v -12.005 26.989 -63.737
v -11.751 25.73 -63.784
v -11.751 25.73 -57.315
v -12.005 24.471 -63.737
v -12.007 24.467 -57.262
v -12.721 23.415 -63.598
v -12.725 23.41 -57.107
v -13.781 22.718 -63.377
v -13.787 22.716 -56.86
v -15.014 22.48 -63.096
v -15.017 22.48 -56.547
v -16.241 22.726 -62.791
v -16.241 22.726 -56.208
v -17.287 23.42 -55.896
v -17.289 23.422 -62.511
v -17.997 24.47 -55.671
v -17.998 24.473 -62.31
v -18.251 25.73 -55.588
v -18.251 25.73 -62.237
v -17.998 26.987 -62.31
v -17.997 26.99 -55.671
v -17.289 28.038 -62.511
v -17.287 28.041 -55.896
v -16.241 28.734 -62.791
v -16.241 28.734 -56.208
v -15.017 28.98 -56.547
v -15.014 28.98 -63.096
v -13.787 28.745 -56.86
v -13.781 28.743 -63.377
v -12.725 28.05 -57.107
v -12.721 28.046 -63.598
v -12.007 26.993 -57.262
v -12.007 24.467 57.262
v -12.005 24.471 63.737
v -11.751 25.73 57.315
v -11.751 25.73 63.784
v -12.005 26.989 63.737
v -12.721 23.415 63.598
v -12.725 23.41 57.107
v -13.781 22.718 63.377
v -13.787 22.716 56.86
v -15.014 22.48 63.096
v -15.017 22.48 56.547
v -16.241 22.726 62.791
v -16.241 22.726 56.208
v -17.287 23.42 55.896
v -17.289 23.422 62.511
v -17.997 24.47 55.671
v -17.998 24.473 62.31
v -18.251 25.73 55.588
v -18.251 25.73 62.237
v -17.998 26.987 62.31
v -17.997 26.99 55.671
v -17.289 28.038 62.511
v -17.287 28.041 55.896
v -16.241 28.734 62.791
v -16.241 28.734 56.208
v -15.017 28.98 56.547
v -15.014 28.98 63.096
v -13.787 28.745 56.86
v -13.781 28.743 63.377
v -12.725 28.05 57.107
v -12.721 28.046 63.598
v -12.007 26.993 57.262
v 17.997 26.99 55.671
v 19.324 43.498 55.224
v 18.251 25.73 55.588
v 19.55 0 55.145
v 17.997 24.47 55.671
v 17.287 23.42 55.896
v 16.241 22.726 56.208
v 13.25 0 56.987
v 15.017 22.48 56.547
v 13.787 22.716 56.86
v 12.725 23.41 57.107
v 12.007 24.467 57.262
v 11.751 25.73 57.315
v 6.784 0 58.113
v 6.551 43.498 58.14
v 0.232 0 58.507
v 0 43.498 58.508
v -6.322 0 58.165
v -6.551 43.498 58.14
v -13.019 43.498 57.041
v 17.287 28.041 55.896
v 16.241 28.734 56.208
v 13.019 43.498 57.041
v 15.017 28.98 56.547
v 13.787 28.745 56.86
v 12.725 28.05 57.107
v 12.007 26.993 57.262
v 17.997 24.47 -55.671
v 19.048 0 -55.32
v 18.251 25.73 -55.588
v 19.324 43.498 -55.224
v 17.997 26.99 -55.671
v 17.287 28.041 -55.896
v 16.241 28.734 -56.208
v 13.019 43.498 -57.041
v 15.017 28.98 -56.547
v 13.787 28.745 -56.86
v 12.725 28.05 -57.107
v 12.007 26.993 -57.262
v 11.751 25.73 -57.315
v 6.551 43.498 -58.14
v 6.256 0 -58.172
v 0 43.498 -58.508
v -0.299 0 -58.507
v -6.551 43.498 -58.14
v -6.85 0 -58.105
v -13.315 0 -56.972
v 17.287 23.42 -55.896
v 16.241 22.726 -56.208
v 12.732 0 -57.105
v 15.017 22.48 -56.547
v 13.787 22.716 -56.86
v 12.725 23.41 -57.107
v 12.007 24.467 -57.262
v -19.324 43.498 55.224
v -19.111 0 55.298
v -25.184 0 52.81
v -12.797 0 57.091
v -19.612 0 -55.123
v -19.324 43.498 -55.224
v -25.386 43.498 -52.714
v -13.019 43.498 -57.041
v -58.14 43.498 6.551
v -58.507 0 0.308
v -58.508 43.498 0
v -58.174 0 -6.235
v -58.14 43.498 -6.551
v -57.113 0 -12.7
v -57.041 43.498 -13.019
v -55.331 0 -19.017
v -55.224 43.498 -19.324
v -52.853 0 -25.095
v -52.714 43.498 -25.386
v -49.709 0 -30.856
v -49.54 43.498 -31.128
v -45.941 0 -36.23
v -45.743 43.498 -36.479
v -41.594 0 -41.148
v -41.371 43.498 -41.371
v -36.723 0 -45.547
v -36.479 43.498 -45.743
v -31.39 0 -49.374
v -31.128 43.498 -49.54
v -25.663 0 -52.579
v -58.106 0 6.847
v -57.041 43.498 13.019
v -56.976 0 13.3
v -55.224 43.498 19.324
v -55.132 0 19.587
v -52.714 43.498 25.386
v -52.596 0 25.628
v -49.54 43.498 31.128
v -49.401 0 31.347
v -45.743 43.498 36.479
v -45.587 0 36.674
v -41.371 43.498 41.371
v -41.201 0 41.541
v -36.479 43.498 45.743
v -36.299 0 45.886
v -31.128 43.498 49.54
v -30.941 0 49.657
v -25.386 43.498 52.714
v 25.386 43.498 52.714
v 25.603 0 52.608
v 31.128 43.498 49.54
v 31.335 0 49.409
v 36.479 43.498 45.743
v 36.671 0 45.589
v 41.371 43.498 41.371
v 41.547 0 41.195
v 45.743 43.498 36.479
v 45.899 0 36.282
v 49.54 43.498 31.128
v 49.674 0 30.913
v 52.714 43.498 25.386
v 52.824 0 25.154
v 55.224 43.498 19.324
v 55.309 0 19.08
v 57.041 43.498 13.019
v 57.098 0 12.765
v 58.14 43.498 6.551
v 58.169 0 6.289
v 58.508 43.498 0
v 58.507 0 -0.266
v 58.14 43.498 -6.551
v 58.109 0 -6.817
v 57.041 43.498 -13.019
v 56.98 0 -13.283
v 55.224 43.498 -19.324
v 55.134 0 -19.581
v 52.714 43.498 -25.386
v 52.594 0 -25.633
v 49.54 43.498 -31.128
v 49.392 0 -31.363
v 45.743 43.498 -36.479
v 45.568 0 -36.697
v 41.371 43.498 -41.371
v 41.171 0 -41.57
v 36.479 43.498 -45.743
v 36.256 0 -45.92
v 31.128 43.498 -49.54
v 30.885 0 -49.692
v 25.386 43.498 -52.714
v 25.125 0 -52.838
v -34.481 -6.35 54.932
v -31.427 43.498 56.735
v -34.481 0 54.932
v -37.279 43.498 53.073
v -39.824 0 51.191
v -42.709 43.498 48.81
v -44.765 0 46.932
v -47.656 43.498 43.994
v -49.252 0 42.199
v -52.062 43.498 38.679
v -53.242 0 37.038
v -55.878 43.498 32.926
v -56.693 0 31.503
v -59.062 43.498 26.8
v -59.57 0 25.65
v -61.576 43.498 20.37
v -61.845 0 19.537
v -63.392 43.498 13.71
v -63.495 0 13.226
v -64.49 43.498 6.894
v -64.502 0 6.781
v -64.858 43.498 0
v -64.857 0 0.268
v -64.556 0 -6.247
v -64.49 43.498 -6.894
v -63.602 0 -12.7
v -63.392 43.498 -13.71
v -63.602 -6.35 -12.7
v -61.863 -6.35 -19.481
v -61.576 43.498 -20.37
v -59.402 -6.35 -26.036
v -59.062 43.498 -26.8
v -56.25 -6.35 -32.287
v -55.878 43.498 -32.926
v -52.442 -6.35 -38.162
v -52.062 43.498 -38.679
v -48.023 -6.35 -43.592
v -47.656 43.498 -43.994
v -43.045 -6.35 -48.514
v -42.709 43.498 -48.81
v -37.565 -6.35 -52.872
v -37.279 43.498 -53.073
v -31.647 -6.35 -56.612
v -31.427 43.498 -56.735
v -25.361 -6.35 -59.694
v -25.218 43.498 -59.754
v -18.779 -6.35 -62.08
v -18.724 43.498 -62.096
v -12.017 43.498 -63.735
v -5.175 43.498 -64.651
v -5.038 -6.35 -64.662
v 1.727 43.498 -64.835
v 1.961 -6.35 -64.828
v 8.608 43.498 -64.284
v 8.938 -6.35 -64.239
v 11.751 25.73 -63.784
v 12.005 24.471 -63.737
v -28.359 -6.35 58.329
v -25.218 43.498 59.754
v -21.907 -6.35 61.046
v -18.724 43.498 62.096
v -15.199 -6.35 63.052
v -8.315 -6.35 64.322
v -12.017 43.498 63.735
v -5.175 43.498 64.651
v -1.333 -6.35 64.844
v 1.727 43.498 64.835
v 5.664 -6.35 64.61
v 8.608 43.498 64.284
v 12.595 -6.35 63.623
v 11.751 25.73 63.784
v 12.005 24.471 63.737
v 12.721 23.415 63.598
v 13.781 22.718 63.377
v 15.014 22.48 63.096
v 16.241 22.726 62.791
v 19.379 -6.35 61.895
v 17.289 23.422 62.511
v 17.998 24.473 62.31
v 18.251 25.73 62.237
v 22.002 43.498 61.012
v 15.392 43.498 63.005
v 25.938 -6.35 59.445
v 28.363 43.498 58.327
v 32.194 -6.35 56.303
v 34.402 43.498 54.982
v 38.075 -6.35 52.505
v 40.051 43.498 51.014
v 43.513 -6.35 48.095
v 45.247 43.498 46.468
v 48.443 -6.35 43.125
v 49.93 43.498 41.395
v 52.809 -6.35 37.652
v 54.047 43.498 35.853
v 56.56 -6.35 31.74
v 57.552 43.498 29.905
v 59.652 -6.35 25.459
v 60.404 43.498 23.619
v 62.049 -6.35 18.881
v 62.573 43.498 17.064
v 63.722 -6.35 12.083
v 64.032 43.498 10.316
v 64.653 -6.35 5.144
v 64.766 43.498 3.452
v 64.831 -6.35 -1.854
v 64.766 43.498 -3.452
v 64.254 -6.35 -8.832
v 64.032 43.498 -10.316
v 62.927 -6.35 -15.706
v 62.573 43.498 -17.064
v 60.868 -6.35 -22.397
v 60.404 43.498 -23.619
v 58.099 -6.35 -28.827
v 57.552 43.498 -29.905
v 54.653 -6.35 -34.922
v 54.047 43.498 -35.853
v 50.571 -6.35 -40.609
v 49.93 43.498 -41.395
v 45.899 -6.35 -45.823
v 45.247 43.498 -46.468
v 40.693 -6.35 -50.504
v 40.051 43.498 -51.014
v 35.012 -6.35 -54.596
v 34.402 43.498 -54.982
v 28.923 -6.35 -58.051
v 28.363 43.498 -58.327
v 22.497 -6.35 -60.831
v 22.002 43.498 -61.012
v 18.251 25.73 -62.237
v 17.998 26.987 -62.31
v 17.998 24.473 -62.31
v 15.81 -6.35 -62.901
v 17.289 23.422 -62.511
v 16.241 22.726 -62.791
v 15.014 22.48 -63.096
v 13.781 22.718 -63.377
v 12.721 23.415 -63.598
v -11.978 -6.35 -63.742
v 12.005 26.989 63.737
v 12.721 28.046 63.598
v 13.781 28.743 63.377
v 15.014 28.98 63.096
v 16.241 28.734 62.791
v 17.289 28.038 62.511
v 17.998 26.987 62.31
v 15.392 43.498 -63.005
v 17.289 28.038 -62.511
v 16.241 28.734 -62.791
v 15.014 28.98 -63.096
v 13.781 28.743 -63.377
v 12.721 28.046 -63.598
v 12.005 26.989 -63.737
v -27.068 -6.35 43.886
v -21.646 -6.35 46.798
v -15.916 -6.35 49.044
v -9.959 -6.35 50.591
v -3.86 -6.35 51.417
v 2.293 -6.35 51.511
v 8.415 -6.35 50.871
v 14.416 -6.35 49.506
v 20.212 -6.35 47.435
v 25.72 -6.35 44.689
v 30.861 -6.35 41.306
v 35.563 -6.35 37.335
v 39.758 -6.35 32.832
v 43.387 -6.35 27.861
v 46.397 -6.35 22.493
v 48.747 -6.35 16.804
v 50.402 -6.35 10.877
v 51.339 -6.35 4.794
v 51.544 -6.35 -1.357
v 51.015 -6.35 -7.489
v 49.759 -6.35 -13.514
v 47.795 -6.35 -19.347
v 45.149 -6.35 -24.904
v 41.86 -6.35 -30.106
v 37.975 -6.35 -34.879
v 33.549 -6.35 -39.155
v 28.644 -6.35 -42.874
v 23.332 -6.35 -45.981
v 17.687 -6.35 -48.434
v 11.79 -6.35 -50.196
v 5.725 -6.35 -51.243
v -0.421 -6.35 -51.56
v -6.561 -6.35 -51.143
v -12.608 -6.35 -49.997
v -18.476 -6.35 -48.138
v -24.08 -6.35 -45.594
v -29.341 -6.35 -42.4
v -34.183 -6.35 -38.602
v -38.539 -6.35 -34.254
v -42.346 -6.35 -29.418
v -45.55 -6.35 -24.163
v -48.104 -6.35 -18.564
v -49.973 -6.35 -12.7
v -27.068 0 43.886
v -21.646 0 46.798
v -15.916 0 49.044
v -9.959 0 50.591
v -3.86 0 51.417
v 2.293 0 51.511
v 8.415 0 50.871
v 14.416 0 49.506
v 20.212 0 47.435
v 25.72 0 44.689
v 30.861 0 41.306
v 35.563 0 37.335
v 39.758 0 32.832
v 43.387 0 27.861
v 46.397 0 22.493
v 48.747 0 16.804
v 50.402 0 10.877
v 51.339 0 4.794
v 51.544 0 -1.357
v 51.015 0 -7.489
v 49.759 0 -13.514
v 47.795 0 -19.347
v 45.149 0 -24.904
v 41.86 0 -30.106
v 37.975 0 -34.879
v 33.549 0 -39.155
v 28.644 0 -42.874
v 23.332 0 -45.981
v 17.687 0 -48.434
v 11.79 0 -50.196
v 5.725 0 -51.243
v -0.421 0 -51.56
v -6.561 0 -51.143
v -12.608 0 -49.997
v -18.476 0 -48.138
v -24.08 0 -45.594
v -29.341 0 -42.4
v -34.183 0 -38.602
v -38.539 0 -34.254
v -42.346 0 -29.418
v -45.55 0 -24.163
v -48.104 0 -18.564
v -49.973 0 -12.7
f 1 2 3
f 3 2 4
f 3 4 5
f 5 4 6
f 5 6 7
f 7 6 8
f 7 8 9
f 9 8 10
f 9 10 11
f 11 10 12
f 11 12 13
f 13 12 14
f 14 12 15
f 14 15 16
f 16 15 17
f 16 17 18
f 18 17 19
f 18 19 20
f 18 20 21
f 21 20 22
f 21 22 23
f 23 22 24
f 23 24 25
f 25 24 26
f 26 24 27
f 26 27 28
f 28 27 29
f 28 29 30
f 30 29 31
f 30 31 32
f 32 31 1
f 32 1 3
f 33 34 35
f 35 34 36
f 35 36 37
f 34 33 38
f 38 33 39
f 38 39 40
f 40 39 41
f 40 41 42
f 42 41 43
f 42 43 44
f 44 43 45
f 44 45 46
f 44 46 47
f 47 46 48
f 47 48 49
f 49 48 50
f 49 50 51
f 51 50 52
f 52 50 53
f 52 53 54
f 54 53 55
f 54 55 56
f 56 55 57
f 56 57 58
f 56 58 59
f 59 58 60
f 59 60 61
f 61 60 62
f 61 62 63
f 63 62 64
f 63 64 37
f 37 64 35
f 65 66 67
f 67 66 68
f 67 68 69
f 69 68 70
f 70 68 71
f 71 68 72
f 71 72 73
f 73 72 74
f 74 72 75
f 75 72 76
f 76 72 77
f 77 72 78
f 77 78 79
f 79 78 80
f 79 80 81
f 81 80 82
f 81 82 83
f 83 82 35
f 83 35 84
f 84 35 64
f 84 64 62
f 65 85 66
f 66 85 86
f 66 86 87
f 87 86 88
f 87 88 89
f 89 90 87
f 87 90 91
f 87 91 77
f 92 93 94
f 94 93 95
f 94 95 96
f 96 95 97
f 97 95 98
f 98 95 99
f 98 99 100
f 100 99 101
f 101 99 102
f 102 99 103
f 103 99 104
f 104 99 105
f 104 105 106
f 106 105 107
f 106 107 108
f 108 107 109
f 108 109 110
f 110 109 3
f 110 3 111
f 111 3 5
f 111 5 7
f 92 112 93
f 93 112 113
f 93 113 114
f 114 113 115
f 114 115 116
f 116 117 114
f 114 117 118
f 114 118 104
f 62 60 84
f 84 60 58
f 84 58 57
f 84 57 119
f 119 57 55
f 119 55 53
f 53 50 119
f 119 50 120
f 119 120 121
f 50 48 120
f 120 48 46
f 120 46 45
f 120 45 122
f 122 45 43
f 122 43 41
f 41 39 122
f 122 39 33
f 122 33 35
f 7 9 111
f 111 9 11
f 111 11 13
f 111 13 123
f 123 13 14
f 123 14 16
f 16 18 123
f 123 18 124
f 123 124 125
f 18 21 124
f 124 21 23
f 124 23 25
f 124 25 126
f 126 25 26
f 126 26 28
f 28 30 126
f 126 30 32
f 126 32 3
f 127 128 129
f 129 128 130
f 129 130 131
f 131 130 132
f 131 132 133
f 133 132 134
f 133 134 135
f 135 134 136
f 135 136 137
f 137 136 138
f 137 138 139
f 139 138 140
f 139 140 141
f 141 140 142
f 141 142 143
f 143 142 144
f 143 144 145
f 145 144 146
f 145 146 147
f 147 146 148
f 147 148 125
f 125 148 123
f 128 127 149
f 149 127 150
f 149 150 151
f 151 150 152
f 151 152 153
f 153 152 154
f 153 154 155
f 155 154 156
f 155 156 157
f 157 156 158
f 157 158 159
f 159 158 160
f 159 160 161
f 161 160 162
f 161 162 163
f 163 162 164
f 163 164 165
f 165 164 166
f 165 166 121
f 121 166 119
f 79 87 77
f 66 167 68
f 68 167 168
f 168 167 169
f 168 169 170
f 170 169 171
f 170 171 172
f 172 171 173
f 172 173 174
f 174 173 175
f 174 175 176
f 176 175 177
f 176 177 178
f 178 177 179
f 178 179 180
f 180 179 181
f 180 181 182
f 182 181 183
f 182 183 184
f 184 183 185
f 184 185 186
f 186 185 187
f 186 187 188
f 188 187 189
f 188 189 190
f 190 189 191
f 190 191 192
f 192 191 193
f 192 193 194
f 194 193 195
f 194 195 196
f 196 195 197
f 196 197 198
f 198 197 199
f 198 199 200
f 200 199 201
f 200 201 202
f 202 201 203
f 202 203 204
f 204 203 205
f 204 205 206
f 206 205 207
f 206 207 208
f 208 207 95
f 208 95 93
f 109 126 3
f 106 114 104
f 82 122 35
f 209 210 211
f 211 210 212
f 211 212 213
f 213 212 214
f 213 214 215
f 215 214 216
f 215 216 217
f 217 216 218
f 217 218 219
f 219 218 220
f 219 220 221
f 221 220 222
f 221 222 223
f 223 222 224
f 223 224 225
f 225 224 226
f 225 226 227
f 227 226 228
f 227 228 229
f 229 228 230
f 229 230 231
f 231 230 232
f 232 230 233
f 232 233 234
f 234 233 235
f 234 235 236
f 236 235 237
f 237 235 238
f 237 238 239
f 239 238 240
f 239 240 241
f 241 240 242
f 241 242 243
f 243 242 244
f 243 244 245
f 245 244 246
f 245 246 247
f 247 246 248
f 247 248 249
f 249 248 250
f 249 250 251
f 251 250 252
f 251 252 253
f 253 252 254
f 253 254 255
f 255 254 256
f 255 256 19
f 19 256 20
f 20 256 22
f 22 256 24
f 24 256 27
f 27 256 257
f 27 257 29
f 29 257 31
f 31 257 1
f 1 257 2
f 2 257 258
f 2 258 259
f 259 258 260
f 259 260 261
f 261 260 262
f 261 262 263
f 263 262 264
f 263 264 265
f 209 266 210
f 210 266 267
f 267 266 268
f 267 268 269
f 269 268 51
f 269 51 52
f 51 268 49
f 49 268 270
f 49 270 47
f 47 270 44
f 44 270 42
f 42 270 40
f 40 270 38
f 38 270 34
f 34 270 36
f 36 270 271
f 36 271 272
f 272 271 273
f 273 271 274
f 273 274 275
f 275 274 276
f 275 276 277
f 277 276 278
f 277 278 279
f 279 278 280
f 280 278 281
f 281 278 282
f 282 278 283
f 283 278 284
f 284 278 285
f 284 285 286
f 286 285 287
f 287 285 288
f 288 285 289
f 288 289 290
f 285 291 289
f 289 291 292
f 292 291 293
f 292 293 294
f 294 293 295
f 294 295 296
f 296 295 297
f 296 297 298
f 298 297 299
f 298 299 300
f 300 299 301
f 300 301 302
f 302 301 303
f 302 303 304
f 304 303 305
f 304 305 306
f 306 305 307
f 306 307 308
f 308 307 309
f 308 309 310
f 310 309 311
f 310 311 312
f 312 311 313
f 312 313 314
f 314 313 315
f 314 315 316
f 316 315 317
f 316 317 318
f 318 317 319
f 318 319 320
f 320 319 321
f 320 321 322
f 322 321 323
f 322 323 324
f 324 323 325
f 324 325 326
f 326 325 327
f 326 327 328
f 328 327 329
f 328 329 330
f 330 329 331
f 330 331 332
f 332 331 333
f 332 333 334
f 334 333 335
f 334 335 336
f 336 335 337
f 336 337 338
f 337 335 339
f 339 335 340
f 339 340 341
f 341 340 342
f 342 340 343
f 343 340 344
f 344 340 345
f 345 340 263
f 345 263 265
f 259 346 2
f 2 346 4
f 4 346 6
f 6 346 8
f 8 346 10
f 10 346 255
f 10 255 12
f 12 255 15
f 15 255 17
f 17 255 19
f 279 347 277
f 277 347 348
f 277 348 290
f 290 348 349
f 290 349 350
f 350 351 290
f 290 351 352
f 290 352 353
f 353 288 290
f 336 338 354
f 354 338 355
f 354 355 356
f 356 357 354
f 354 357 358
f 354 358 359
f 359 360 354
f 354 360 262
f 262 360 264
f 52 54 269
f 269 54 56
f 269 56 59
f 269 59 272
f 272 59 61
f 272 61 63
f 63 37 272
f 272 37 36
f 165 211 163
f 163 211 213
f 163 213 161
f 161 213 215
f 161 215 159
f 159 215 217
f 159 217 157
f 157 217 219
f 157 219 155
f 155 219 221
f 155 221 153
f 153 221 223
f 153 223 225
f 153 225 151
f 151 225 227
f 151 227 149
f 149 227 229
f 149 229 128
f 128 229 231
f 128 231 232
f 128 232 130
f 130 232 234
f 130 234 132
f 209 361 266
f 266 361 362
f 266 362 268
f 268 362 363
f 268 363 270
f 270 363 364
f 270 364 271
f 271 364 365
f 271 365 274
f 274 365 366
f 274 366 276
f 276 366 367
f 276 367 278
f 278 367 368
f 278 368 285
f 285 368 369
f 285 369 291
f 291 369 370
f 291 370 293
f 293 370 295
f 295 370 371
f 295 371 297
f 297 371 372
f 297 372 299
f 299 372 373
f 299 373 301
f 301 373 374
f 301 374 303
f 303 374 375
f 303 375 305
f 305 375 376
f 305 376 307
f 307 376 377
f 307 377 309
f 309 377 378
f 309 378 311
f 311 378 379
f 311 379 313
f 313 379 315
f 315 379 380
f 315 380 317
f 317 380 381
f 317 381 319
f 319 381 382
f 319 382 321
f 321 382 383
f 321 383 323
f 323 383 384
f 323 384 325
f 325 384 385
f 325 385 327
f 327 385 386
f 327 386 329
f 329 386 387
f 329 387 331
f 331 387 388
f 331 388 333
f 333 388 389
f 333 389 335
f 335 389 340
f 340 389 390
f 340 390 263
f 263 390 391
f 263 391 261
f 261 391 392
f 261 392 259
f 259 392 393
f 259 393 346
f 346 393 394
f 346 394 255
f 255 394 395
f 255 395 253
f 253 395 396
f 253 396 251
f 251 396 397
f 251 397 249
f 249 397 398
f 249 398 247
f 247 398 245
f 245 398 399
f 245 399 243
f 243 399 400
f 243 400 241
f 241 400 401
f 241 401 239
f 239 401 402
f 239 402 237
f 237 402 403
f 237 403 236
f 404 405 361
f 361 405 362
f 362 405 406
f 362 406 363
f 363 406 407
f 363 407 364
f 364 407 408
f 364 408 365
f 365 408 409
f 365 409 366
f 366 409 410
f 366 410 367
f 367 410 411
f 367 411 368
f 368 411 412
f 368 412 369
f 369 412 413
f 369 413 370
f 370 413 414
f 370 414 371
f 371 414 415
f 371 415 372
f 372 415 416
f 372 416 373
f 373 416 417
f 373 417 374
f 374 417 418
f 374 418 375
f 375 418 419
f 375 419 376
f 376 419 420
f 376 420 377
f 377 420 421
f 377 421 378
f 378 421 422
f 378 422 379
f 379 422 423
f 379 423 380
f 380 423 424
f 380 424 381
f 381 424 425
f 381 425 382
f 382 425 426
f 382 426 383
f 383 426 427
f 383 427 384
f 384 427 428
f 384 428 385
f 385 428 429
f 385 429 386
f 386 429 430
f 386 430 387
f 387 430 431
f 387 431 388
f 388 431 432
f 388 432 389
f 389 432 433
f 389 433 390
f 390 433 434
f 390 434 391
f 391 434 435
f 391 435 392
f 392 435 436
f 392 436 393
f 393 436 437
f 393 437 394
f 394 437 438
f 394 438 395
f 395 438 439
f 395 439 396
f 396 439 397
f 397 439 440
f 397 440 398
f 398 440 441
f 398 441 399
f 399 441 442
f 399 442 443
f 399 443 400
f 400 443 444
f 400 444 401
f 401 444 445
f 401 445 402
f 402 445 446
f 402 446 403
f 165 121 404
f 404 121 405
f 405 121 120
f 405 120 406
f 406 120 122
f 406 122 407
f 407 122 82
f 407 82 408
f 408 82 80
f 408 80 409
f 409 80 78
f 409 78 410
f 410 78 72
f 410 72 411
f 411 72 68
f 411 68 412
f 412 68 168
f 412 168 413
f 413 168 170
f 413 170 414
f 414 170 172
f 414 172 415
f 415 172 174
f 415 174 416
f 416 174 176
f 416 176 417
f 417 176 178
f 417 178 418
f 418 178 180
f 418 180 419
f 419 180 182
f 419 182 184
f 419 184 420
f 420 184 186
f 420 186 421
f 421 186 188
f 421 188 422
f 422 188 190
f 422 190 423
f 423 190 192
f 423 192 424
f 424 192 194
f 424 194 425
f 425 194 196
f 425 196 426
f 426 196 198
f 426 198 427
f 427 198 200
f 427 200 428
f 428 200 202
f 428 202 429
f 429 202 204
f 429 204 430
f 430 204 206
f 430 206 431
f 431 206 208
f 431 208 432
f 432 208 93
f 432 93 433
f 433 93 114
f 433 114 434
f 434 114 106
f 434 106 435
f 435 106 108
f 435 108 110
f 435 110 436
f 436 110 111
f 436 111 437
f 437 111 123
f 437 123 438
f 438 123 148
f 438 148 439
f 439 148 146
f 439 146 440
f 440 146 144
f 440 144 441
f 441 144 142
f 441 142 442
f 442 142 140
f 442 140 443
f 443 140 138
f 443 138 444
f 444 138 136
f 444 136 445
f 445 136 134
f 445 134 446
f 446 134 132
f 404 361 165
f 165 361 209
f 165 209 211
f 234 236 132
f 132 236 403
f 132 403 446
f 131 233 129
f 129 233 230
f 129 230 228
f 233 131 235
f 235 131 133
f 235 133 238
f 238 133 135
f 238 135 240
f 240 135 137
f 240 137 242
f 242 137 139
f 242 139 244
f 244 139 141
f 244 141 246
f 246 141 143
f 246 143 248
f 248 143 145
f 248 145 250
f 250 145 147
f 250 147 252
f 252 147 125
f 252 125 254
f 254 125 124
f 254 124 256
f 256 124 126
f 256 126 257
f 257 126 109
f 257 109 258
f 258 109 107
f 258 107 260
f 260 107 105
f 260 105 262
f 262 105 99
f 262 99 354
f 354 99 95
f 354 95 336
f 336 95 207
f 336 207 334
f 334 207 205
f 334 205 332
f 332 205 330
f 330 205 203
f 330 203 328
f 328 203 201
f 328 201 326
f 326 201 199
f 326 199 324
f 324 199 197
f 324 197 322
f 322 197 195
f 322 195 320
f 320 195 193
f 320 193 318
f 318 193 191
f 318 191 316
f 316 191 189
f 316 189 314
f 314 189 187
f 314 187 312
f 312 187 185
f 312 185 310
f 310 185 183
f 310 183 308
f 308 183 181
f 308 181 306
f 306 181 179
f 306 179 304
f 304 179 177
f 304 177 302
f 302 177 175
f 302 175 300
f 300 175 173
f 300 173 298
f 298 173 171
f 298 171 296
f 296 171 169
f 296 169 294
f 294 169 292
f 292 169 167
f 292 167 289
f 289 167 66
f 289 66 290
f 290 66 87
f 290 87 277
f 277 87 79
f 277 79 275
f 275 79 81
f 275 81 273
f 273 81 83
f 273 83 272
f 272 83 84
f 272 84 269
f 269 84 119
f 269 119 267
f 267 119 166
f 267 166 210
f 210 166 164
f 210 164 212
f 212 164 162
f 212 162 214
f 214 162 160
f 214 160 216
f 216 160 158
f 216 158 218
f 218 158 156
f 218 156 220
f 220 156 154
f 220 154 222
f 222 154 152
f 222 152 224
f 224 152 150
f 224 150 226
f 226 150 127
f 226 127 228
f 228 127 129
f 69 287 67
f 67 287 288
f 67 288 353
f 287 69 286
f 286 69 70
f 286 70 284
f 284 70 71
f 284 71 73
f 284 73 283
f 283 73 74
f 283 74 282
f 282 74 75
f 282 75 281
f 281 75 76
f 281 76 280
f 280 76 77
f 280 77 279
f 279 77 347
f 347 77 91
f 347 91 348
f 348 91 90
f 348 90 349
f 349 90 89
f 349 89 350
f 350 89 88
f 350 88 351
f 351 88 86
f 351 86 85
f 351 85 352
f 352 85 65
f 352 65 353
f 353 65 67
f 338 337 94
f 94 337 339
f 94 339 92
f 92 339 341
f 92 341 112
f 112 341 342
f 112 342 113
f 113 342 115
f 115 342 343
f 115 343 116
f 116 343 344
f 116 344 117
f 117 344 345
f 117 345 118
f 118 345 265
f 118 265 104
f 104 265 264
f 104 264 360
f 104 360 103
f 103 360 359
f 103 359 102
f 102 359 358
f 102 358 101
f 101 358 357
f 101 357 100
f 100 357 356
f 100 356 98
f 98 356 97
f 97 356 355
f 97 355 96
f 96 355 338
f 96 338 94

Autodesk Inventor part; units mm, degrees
ref_plane "YZ Plane" through (0, 0, 0) normal (1, 0, 0) x (0, 1, 0)
ref_plane "XZ Plane" through (0, 0, 0) normal (0, 1, 0) x (-1, 0, 0)
ref_plane "XY Plane" through (0, 0, 0) normal (0, 0, 1) x (1, 0, 0)
sketch "Sketch1" plane through (0, 0, 0) normal (0, 1, 0) x (-1, 0, 0)
  circle A0 centre (0, 0) radius 58.5076
  circle A1 centre (0, 0) radius 64.8576
  dimension "d0" = 117.0153
  dimension "d1" = 129.7153
extrude "Extrusion1" add sketch "Sketch1" along normal blind 43.4975
sketch "Sketch2" plane through (0, 0, 0) normal (0, 1, 0) x (-1, 0, 0)
  circle A0 centre (0, 0) radius 51.562
  circle A1 centre (0, 0) radius 64.8576
  dimension "d4" = 103.124
  dimension "d5" = 129.7153
extrude "Extrusion2" add sketch "Sketch2" against normal blind 6.35
sketch "Sketch3" plane through (0, 0, 0) normal (0, 1, 0) x (-1, 0, 0)
  circle A0 centre (12.7, 12.7) radius 1.6256
  circle A1 centre (12.7, -12.7) radius 1.6256
  circle A2 centre (-12.7, 12.7) radius 1.6256
  circle A3 centre (-12.7, -12.7) radius 1.6256
  circle A4 centre (0, 0) radius 50.1447
  line L0 (53.4401, 17.2954) -> (47.8331, 15.0494)
  line L1 (0, 0) -> (53.4401, 17.2954)
  line L2 (43.7038, 24.586) -> (45.7401, 24.9855)
  line L3 (53.4401, 17.2954) -> (45.7401, 24.9855)
  line L4 (45.7401, 24.9855) -> (0, 0)
  dimension "d8" = 3.2512
  dimension "d9" = 3.2512
  dimension "d10" = 3.2512
  dimension "d11" = 3.2512
sketch "Sketch5" plane through (0, 0, 0) normal (0, 1, 0) x (-1, 0, 0)
  circle A0 centre (0, 0) radius 64.8576 projected
  arc A1 (64.8576, 0) -> (44.4312, 47.2481) centre (0, 0) ccw
  arc A2 (50.9046, 0) -> (35.0064, 36.9572) centre (0, 0) ccw
  line L0 (35.0064, 36.9572) -> (44.4312, 47.2481)
  line L1 (50.9046, 0) -> (64.8576, 0)
  arc A3 (64.8576, 0) -> (44.4312, 47.2481) centre (0, 0) ccw
extrude "Extrusion3" cut sketch "Sketch5" against normal blind 7.62 contours L1 A2 L0 A0 picked at (59.6957, 6.2583)
sketch "Sketch10" plane through (0, 0, 0) normal (0, 0, 1) x (1, 0, 0)
  circle A0 centre (-15.0012, 25.7302) radius 3.2499
  point P0 (0, 0)
  dimension "d27" = 6.4999
extrude "Extrusion8" cut sketch "Sketch10" along normal mid plane 152.4
sketch "Sketch11" plane through (0, 0, 0) normal (0, 0, 1) x (1, 0, 0)
  circle A0 centre (15.0012, 25.7302) radius 3.2499
  point P0 (0, 0)
  dimension "d30" = 6.4999
extrude "Extrusion9" cut sketch "Sketch11" along normal mid plane 152.4
sketch "Sketch12" plane through (0, -6.35, 0) normal (0, -1, 0) x (1, 0, 0)
  line L0 (-58.5076, 0) -> (-64.8576, 0) projected
  line L1 (-64.8576, 0) -> (-49.4674, 0)
  line L2 (-49.4674, 0) -> (-49.4674, -12.7)
  line L3 (-49.4674, -12.7) -> (-64.8576, -12.7)
  line L4 (-64.8576, -12.7) -> (-64.8576, 0)
  point P0 (0, 0)
  dimension "d33" = 12.7
extrude "Extrusion10" cut sketch "Sketch12" against normal blind 6.35
sketch "Sketch13" plane through (0, -6.35, 0) normal (0, -1, 0) x (1, 0, 0)
  point P0 (0, 0)
sketch "Sketch14" plane through (0, -6.35, 0) normal (0, -1, 0) x (1, 0, 0)
  line L0 (-35.1204, 55.8851) -> (-25.6536, 41.7778)
  line L1 (-25.6536, 41.7778) -> (-33.019, 34.9455)
  line L2 (-44.4312, 47.2481) -> (-40.1421, 42.5648) projected
  line L3 (-44.4312, 47.2481) -> (-48.028, 43.8657)
  circle A0 centre (0, 0) radius 64.8576 projected
  line L4 (-48.028, 43.8657) -> (-35.1204, 32.9693)
  line L5 (-35.1204, 32.9693) -> (-33.019, 34.9455)
  line L6 (-48.028, 43.8657) -> (-45.6028, 48.5109)
  line L7 (-45.6028, 48.5109) -> (-35.1204, 55.8851)
  dimension "d36" = 12.7
extrude "Extrusion11" cut sketch "Sketch14" against normal blind 6.35 contours L0 A0 L3 L6 L7 | L0 L1 L5 L4 A0 | A0 L4 L3 picked at (-33.3184, 42.2486)
properties part number "loader20190318_part2"
